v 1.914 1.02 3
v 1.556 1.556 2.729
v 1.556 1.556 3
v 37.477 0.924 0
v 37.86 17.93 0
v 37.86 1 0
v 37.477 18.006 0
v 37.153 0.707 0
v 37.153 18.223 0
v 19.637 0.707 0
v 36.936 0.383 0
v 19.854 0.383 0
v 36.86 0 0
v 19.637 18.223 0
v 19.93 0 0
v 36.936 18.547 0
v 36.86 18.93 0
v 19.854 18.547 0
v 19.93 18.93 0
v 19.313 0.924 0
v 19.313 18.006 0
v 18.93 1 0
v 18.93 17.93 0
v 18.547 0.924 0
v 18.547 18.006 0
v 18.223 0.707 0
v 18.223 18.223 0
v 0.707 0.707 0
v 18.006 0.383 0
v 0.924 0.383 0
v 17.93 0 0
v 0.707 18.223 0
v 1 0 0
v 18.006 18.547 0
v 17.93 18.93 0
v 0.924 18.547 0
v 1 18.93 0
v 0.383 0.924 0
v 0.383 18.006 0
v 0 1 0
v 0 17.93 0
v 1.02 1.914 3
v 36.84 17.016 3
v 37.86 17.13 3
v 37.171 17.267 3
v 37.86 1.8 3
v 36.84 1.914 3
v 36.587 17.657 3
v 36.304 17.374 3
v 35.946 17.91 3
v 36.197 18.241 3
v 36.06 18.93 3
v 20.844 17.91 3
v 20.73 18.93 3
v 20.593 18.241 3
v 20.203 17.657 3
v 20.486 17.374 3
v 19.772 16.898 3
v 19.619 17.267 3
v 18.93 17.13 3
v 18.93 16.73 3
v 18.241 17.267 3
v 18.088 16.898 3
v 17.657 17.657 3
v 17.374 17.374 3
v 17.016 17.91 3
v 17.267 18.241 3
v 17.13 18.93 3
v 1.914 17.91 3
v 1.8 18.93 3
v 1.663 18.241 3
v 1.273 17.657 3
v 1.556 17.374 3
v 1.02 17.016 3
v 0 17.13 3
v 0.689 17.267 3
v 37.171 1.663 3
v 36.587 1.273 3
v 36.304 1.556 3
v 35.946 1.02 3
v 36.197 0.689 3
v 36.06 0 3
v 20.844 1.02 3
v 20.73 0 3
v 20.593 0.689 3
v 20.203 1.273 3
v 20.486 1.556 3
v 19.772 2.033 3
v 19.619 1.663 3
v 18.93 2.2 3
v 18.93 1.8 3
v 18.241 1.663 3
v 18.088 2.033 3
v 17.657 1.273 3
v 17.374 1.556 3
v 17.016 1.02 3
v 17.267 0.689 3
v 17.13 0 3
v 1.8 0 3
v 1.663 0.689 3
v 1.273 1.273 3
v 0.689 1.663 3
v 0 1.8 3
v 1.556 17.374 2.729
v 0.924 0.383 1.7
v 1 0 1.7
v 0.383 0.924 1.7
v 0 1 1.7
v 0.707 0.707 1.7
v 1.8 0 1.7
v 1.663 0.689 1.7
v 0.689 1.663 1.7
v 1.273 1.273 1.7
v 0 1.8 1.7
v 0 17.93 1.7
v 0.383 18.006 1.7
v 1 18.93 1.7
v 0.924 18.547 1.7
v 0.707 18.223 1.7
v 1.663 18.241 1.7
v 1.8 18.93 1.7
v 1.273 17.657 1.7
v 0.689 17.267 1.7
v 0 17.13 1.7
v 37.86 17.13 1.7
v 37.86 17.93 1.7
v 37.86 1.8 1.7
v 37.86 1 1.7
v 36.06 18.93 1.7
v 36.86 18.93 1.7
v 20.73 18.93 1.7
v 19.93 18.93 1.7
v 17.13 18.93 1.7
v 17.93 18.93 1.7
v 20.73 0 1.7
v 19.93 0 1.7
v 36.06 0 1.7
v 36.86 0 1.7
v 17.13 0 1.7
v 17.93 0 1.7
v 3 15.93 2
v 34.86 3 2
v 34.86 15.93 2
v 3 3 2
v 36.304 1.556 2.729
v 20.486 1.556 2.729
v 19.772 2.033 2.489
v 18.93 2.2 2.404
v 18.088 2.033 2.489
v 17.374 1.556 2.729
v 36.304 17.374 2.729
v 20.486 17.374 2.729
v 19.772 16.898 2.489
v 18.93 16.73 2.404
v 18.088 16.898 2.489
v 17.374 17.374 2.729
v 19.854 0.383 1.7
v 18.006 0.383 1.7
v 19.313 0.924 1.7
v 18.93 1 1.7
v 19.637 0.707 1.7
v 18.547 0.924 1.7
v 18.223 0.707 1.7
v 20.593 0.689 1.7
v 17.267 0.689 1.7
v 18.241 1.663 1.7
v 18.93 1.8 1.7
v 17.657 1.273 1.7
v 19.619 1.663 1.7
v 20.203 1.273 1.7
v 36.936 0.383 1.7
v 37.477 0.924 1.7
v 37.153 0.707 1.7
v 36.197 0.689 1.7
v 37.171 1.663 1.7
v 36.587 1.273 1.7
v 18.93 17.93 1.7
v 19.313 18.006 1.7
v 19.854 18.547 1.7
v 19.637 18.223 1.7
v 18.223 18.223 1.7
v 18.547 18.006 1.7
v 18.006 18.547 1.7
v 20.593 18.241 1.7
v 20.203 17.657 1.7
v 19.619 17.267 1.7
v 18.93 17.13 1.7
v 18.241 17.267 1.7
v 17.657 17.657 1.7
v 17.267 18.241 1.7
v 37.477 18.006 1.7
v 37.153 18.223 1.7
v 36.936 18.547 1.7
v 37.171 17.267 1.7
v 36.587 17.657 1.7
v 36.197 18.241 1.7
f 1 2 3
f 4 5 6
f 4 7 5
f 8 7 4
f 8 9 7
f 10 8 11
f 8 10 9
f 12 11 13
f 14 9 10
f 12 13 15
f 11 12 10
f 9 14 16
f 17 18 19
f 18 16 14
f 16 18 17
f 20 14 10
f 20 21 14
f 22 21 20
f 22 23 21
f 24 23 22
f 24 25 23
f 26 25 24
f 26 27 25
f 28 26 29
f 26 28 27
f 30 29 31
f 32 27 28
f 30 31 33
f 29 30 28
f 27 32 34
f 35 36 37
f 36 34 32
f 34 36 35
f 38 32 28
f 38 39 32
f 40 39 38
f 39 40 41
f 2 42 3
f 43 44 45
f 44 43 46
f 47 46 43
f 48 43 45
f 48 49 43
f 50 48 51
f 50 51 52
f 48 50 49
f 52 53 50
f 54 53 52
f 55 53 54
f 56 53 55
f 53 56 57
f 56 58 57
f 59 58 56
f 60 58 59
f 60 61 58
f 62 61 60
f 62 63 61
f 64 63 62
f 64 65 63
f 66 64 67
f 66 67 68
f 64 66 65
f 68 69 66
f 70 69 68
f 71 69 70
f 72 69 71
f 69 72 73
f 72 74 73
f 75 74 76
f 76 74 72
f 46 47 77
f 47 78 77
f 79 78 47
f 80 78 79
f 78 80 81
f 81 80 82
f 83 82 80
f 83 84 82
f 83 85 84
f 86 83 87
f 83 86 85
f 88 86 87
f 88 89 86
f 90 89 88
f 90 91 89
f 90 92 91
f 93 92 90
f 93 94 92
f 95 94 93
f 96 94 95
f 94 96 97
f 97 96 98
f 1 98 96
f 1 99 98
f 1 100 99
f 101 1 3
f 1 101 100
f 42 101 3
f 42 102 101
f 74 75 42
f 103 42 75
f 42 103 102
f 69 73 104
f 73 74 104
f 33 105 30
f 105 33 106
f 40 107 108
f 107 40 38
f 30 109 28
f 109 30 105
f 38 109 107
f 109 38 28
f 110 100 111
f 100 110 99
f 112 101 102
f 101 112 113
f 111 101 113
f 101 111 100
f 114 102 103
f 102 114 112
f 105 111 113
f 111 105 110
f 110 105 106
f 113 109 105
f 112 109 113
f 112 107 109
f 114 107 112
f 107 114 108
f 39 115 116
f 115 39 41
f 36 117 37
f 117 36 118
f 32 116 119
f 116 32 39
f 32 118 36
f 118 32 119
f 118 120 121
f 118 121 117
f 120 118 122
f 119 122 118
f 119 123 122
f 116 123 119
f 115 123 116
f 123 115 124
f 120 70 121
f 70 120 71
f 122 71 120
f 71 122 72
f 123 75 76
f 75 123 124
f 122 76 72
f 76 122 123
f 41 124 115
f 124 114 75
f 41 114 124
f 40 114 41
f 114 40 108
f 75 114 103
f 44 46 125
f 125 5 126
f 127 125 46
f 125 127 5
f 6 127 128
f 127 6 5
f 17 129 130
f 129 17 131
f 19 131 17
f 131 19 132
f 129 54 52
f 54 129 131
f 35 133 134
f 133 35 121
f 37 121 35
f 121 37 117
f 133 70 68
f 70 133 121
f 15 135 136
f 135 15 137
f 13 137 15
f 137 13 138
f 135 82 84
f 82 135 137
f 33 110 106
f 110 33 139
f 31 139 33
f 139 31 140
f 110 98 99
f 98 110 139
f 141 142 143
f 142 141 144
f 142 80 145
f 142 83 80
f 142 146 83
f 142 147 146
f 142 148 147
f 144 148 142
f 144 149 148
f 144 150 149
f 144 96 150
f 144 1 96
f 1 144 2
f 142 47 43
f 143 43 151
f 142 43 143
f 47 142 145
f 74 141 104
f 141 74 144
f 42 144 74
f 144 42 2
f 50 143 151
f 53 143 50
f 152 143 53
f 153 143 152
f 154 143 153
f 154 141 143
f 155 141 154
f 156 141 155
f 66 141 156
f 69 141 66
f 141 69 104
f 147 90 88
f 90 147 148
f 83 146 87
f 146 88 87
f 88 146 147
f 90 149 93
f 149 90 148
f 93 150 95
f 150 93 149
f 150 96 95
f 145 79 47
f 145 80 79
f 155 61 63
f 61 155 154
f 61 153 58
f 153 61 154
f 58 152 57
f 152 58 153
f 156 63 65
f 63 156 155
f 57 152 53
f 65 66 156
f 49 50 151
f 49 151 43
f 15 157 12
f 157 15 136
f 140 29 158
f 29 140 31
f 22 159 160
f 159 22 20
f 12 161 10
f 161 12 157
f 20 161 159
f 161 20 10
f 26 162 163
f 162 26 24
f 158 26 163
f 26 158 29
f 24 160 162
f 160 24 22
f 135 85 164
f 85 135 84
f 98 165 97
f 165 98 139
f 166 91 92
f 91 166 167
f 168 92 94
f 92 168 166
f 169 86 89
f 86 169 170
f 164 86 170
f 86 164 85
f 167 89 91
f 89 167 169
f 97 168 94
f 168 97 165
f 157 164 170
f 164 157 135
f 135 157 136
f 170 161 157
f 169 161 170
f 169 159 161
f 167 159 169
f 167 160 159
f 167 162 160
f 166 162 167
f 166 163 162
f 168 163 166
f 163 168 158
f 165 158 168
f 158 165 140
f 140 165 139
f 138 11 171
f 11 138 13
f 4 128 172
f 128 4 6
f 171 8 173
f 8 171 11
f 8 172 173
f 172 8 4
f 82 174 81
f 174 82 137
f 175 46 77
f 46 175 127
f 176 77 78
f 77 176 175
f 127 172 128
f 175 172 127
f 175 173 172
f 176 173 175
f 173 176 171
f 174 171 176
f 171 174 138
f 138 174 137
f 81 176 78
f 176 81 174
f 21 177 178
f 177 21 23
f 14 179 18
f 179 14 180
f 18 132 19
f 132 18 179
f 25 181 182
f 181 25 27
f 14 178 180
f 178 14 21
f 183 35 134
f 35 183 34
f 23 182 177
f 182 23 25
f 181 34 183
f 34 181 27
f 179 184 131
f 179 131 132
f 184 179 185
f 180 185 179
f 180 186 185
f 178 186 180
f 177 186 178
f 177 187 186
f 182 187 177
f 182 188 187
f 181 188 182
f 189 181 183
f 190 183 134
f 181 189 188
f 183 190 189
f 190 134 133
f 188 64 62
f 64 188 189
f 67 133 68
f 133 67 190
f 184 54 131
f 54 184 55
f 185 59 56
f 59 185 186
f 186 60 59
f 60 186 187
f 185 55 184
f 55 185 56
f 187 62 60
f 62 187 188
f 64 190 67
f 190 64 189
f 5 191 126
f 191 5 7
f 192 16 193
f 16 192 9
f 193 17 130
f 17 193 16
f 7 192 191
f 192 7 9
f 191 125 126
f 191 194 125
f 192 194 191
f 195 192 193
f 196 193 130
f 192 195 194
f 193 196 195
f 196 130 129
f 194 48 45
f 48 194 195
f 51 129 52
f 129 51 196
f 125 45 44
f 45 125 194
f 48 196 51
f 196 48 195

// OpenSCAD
//OpenSCAD-Skript

//Moduldefinition mit Parametern für Frontplattensystem im 19mm-Raster
module FrontElem (
//Parameter
xwert=2,        //Anzahl der Segmente in horizontaler Richtung
ywert=1,        //Anzahl der Segmente in vertikaler Richtung
segment=18.93,  //Kantenlänge des Segments
thick=2.0,      //verbleibende Dicke des Frontplattensegments
wo=1.0,         //Wandstärke oben
wu=3,           //Wandstärke unten
hght=3.0,       //Höhe des Rands des Frontplattensegments
M3=false,       //Bohrungen für M3-Zylinderkopf-Inbusschraube
skd3=5.6,       //Schraubenkopfdurchmesser M3-Schraube
skh3=3.3,       //Schraubenkopfhöhe M3-Schraube
dsh3=3.1,       //Schaftdurchmesser M3-Schraube
dvst3=7,        //Verstärkung für M3-Schraube
B2mm=true,      //Bohrungen für 2mm-Schneidschrauben
skd2=3.6,       //Schraubenkopfdurchmesser 2mm-Schraube (4.4)
skh2=1.3,       //Schraubenkopfhöhe 2mm-Schraube
dsh2=2.0,       //Schaftdurchmesser 2mm-Schraube
dvst2=4.4,      //Verstärkung für 2mm-Schraube
Btext=6.0,      //Breite Beschriftungsband
Ltext=12,       //Länge Beschriftungsband
Dtext=0.3,      //Tiefe Beschriftungsfeld, oder Null
LEDdia=5.0,     //Durchmesser LED
KSWdia=6.0,     //Schaftdurchmesser Kippschalter
RSWdia=9.2,     //Schaftdurchmesser Drehschalter
RSWdist=9.4,    //Mittenabstand Pin
RSWpin=3.0,     //Durchmesser Pin
POTdia=6.8,     //Schaftdurchmesser Poti
TRMdia=4.0,     //Bohrung für Polklemme M4
TRSdia=6.0,     //Bohrung für Telefonbuchse 4mm
MCdia=11.8,     //Bohrung für MC-Buchse 4mm
MCdist=10.4,    //Abstand Abflachungen
BNCdia=9.5,     //Durchmesser Bohrung
BNCdist=8.0    //Abstand Abflachung
)
//Beginn Modul
{
difference(){   //difference 1
union(){        //union 1
difference(){   //difference 2
union(){        //union 2
    //alles, was vor der nächsten geschweiften Klammer steht, wird zusammengefügt (union 2)
//Körper des Frontplattensegments
cube([xwert*segment, ywert*segment, hght]);


}               //union 2 end
    //alles, was vor der nächsten geschweiften Klammer steht, wird davon abgezogen (difference 2)
//Einsenkung in das Segment
polyhedron(
               points= [[wu,wu,thick],                                  //0 unten
                        [xwert*segment-wu,wu,thick],                    //1 unten
                        [xwert*segment-wu,ywert*segment-wu,thick],      //2 unten
                        [wu,ywert*segment-wu,thick],                    //3 unten
                        [wo,wo,hght+0.01],                              //4 oben
                        [wo,ywert*segment-wo, hght+0.01],               //5 oben
                        [xwert*segment-wo,ywert*segment-wo,hght+0.01],  //6 oben
                        [xwert*segment-wo,wo,hght+0.01],                //7 oben
                       ],
               faces=  [[0,1,2,3],      //Boden
                        [0,4,7,1],      //Deckel
                        [1,7,6,2],      //Front
                        [2,6,5,3],      //Seitenwand rechts
                        [3,5,4,0],      //Rückwand
                        [4,5,6,7]]      //Seitenwand links
               );   
//Bohrung für LED mittig (Mindestgröße 1x1)
/*
translate([xwert*segment/2,ywert*segment/2-3,-0.1])  cylinder(d=LEDdia, h=10, $fn=32);
*/

//Bohrung für LED nach unten versetzt mit Textfeld darüber (Mindestgröße 1x1, bei 10mm LED 1x2)
/*
translate([xwert*segment/2,ywert*segment/2-3,-0.1])  cylinder(d=LEDdia, h=10, $fn=32);
translate([xwert*segment/2-Ltext/2,ywert*segment/2,thick-Dtext+0.05])  cube([Ltext, Btext, Dtext]); 
*/

//Bohrung für Kippschalter mittig (Mindestgröße 1x1)
/*
translate([xwert*segment/2,ywert*segment/2,-0.1])  cylinder(d=KSWdia, h=10, $fn=32); 
*/

//Bohrungen für Drehschalter mit Pin (Mindestgröße 2x2)
/*
translate([xwert*segment/2,ywert*segment/2,-0.1])  cylinder(d=RSWdia, h=10, $fn=32);
translate([xwert*segment/2+RSWdist,ywert*segment/2,-0.1])  cylinder(d=RSWpin, h=1.5, $fn=32);
*/

//Bohrung für Potentiometer 3mm-Schaft (Mindestgröße 1x1)
/*
translate([xwert*segment/2,ywert*segment/2,-0.1])  cylinder(d=POTdia, h=10, $fn=32);
*/

//Bohrung für 4mm-Polklemme M4 (Mindestgröße 1x1)
/*translate([xwert*segment/2,ywert*segment/2,-0.1])  cylinder(d=TRMdia, h=10, $fn=32);
*/       

//Bohrung für 4mm-Telefonbuchse (Mindestgröße 1x1)
/*
translate([xwert*segment/2,ywert*segment/2,-0.1])  cylinder(d=TRSdia, h=10, $fn=32);
*/

//Bohrung für 4mm-MC-Buchse (Mindestgröße 2x2)
/*
translate([xwert*segment/2,ywert*segment/2,-0.1])  cylinder(d=MCdia, h=10, $fn=32);
*/

//Bohrung für BNC-Buchse (Mindestgröße 1x1)
//translate([xwert*segment/2,ywert*segment/2,-0.1])  cylinder(d=BNCdia, h=10, $fn=32);

}  //difference 2 end
    //alles, was vor der nächsten geschweiften Klammer steht, wird dazu hinzugefügt (union 1)
//Verstärkungen für Schrauben x-Achse unten
for (x=[0:segment:xwert*segment])
{
if (M3==true) translate([x,0,0]) cylinder(d=dvst3,h=hght,$fn=16);
if (B2mm==true) translate([x,0,0]) cylinder(d=dvst2,h=hght,$fn=16);
}
//Verstärkungen für Schrauben x-Achse oben
for (x=[0:segment:xwert*segment])
{
if (M3==true) translate([x,ywert*segment,0]) cylinder(d=dvst3,h=hght,$fn=16);
if (B2mm==true) translate([x,ywert*segment,0]) cylinder(d=dvst2,h=hght,$fn=16);
}
//Verstärkungen für Schrauben y-Achse links
for (y=[0:segment:ywert*segment])
{
if (M3==true) translate([0,y,0]) cylinder(d=dvst3,h=hght,$fn=16);
if (B2mm==true) translate([0,y,0]) cylinder(d=dvst2,h=hght,$fn=16);
}
//Verstärkungen für Schrauben y-Achse rechts
for (y=[0:segment:ywert*segment])
{
if (M3==true) translate([xwert*segment,y,0]) cylinder(d=dvst3,h=hght,$fn=16);
if (B2mm==true) translate([xwert*segment,y,0]) cylinder(d=dvst2,h=hght,$fn=16);
}

//Abflachungen für 4mm-MC-Buchse (Mindestgröße 2x2)
/*
translate([xwert*segment/2-5,ywert*segment/2+MCdist/2,0])  cube([10,3,thick]);
translate([xwert*segment/2-5,ywert*segment/2-MCdist/2-3,0])  cube([10,3,thick]);
*/

//Abflachungen für BNC-Buchse (Mindestgröße 1x1)
//translate([xwert*segment/2-5,ywert*segment/2+BNCdist/2,0])  cube([10,3,thick]);
//translate([xwert*segment/2-5,ywert*segment/2-BNCdist/2-3,0])  cube([10,3,thick]);


}               //union 1 end
    //alles, was vor der nächsten geschweiften Klammer steht, wird davon wieder abgezogen (difference 1)
//Bohrungen für Schrauben x-Achse unten
for (x=[0:segment:xwert*segment])
{
if (M3==true) translate([x,0,-0.1]) cylinder(d=dsh3,h=2*hght,$fn=16);
if (M3==true) translate([x,0,hght-skh3]) cylinder(d=skd3,h=2*hght,$fn=16);
if (B2mm==true) translate([x,0,-0.1]) cylinder(d=dsh2,h=2*hght,$fn=16);
if (B2mm==true) translate([x,0,hght-skh2]) cylinder(d=skd2,h=2*hght,$fn=16); 
}
//Bohrungen für Schrauben x-Achse oben
for (x=[0:segment:xwert*segment])
{
if (M3==true) translate([x,ywert*segment,-0.1]) cylinder(d=dsh3,h=2*hght,$fn=16);
if (M3==true) translate([x,ywert*segment,hght-skh3]) cylinder(d=skd3,h=2*hght,$fn=16);
if (B2mm==true) translate([x,ywert*segment,-0.1]) cylinder(d=dsh2,h=2*hght,$fn=16);
if (B2mm==true) translate([x,ywert*segment,hght-skh2]) cylinder(d=skd2,h=2*hght,$fn=16); 
}
//Bohrungen für Schrauben y-Achse links
for (y=[0:segment:ywert*segment])
{
if (M3==true) translate([0,y,-0.1]) cylinder(d=dsh3,h=2*hght,$fn=16);
if (M3==true) translate([0,y,hght-skh3]) cylinder(d=skd3,h=2*hght,$fn=16);
if (B2mm==true) translate([0,y,-0.1]) cylinder(d=dsh2,h=2*hght,$fn=16);
if (B2mm==true) translate([0,y,hght-skh2]) cylinder(d=skd2,h=2*hght,$fn=16); 
}
//Bohrungen für Schrauben y-Achse rechts
for (y=[0:segment:ywert*segment])
{
if (M3==true) translate([xwert*segment,y,-0.1]) cylinder(d=dsh3,h=2*hght,$fn=16);
if (M3==true) translate([xwert*segment,y,hght-skh3]) cylinder(d=skd3,h=2*hght,$fn=16);
if (B2mm==true) translate([xwert*segment,y,-0.1]) cylinder(d=dsh2,h=2*hght,$fn=16);
if (B2mm==true) translate([xwert*segment,y,hght-skh2]) cylinder(d=skd2,h=2*hght,$fn=16); 
}
//Abschneiden Verstärkungen unten
translate([-250,-10,-0.1])
cube([500,10,25]);
//Abschneiden Verstärkungen oben
translate([-250,ywert*segment,-0.1])
cube([500,10,25]);
//Abschneiden Verstärkungen links
translate([-10,-250,-0.1])
cube([10,500,25]);
//Abschneiden Verstärkungen rechts
translate([xwert*segment,-250,-0.1])
cube([10,500,25]);
/*LED-Ausschnitt
translate([xwert*segment/2-3,ywert*segment/2-3,thick-0.5])
cube([6,6,3]);
translate([xwert*segment/2-2.5,ywert*segment/2-2.5,-0.1])
cube([5,5,2*thick]);
*/

}               //difference 1 end

}  //module end

//Hier werden Instanzen des Moduls aufgerufen
translate([0,0,0]) FrontElem();
